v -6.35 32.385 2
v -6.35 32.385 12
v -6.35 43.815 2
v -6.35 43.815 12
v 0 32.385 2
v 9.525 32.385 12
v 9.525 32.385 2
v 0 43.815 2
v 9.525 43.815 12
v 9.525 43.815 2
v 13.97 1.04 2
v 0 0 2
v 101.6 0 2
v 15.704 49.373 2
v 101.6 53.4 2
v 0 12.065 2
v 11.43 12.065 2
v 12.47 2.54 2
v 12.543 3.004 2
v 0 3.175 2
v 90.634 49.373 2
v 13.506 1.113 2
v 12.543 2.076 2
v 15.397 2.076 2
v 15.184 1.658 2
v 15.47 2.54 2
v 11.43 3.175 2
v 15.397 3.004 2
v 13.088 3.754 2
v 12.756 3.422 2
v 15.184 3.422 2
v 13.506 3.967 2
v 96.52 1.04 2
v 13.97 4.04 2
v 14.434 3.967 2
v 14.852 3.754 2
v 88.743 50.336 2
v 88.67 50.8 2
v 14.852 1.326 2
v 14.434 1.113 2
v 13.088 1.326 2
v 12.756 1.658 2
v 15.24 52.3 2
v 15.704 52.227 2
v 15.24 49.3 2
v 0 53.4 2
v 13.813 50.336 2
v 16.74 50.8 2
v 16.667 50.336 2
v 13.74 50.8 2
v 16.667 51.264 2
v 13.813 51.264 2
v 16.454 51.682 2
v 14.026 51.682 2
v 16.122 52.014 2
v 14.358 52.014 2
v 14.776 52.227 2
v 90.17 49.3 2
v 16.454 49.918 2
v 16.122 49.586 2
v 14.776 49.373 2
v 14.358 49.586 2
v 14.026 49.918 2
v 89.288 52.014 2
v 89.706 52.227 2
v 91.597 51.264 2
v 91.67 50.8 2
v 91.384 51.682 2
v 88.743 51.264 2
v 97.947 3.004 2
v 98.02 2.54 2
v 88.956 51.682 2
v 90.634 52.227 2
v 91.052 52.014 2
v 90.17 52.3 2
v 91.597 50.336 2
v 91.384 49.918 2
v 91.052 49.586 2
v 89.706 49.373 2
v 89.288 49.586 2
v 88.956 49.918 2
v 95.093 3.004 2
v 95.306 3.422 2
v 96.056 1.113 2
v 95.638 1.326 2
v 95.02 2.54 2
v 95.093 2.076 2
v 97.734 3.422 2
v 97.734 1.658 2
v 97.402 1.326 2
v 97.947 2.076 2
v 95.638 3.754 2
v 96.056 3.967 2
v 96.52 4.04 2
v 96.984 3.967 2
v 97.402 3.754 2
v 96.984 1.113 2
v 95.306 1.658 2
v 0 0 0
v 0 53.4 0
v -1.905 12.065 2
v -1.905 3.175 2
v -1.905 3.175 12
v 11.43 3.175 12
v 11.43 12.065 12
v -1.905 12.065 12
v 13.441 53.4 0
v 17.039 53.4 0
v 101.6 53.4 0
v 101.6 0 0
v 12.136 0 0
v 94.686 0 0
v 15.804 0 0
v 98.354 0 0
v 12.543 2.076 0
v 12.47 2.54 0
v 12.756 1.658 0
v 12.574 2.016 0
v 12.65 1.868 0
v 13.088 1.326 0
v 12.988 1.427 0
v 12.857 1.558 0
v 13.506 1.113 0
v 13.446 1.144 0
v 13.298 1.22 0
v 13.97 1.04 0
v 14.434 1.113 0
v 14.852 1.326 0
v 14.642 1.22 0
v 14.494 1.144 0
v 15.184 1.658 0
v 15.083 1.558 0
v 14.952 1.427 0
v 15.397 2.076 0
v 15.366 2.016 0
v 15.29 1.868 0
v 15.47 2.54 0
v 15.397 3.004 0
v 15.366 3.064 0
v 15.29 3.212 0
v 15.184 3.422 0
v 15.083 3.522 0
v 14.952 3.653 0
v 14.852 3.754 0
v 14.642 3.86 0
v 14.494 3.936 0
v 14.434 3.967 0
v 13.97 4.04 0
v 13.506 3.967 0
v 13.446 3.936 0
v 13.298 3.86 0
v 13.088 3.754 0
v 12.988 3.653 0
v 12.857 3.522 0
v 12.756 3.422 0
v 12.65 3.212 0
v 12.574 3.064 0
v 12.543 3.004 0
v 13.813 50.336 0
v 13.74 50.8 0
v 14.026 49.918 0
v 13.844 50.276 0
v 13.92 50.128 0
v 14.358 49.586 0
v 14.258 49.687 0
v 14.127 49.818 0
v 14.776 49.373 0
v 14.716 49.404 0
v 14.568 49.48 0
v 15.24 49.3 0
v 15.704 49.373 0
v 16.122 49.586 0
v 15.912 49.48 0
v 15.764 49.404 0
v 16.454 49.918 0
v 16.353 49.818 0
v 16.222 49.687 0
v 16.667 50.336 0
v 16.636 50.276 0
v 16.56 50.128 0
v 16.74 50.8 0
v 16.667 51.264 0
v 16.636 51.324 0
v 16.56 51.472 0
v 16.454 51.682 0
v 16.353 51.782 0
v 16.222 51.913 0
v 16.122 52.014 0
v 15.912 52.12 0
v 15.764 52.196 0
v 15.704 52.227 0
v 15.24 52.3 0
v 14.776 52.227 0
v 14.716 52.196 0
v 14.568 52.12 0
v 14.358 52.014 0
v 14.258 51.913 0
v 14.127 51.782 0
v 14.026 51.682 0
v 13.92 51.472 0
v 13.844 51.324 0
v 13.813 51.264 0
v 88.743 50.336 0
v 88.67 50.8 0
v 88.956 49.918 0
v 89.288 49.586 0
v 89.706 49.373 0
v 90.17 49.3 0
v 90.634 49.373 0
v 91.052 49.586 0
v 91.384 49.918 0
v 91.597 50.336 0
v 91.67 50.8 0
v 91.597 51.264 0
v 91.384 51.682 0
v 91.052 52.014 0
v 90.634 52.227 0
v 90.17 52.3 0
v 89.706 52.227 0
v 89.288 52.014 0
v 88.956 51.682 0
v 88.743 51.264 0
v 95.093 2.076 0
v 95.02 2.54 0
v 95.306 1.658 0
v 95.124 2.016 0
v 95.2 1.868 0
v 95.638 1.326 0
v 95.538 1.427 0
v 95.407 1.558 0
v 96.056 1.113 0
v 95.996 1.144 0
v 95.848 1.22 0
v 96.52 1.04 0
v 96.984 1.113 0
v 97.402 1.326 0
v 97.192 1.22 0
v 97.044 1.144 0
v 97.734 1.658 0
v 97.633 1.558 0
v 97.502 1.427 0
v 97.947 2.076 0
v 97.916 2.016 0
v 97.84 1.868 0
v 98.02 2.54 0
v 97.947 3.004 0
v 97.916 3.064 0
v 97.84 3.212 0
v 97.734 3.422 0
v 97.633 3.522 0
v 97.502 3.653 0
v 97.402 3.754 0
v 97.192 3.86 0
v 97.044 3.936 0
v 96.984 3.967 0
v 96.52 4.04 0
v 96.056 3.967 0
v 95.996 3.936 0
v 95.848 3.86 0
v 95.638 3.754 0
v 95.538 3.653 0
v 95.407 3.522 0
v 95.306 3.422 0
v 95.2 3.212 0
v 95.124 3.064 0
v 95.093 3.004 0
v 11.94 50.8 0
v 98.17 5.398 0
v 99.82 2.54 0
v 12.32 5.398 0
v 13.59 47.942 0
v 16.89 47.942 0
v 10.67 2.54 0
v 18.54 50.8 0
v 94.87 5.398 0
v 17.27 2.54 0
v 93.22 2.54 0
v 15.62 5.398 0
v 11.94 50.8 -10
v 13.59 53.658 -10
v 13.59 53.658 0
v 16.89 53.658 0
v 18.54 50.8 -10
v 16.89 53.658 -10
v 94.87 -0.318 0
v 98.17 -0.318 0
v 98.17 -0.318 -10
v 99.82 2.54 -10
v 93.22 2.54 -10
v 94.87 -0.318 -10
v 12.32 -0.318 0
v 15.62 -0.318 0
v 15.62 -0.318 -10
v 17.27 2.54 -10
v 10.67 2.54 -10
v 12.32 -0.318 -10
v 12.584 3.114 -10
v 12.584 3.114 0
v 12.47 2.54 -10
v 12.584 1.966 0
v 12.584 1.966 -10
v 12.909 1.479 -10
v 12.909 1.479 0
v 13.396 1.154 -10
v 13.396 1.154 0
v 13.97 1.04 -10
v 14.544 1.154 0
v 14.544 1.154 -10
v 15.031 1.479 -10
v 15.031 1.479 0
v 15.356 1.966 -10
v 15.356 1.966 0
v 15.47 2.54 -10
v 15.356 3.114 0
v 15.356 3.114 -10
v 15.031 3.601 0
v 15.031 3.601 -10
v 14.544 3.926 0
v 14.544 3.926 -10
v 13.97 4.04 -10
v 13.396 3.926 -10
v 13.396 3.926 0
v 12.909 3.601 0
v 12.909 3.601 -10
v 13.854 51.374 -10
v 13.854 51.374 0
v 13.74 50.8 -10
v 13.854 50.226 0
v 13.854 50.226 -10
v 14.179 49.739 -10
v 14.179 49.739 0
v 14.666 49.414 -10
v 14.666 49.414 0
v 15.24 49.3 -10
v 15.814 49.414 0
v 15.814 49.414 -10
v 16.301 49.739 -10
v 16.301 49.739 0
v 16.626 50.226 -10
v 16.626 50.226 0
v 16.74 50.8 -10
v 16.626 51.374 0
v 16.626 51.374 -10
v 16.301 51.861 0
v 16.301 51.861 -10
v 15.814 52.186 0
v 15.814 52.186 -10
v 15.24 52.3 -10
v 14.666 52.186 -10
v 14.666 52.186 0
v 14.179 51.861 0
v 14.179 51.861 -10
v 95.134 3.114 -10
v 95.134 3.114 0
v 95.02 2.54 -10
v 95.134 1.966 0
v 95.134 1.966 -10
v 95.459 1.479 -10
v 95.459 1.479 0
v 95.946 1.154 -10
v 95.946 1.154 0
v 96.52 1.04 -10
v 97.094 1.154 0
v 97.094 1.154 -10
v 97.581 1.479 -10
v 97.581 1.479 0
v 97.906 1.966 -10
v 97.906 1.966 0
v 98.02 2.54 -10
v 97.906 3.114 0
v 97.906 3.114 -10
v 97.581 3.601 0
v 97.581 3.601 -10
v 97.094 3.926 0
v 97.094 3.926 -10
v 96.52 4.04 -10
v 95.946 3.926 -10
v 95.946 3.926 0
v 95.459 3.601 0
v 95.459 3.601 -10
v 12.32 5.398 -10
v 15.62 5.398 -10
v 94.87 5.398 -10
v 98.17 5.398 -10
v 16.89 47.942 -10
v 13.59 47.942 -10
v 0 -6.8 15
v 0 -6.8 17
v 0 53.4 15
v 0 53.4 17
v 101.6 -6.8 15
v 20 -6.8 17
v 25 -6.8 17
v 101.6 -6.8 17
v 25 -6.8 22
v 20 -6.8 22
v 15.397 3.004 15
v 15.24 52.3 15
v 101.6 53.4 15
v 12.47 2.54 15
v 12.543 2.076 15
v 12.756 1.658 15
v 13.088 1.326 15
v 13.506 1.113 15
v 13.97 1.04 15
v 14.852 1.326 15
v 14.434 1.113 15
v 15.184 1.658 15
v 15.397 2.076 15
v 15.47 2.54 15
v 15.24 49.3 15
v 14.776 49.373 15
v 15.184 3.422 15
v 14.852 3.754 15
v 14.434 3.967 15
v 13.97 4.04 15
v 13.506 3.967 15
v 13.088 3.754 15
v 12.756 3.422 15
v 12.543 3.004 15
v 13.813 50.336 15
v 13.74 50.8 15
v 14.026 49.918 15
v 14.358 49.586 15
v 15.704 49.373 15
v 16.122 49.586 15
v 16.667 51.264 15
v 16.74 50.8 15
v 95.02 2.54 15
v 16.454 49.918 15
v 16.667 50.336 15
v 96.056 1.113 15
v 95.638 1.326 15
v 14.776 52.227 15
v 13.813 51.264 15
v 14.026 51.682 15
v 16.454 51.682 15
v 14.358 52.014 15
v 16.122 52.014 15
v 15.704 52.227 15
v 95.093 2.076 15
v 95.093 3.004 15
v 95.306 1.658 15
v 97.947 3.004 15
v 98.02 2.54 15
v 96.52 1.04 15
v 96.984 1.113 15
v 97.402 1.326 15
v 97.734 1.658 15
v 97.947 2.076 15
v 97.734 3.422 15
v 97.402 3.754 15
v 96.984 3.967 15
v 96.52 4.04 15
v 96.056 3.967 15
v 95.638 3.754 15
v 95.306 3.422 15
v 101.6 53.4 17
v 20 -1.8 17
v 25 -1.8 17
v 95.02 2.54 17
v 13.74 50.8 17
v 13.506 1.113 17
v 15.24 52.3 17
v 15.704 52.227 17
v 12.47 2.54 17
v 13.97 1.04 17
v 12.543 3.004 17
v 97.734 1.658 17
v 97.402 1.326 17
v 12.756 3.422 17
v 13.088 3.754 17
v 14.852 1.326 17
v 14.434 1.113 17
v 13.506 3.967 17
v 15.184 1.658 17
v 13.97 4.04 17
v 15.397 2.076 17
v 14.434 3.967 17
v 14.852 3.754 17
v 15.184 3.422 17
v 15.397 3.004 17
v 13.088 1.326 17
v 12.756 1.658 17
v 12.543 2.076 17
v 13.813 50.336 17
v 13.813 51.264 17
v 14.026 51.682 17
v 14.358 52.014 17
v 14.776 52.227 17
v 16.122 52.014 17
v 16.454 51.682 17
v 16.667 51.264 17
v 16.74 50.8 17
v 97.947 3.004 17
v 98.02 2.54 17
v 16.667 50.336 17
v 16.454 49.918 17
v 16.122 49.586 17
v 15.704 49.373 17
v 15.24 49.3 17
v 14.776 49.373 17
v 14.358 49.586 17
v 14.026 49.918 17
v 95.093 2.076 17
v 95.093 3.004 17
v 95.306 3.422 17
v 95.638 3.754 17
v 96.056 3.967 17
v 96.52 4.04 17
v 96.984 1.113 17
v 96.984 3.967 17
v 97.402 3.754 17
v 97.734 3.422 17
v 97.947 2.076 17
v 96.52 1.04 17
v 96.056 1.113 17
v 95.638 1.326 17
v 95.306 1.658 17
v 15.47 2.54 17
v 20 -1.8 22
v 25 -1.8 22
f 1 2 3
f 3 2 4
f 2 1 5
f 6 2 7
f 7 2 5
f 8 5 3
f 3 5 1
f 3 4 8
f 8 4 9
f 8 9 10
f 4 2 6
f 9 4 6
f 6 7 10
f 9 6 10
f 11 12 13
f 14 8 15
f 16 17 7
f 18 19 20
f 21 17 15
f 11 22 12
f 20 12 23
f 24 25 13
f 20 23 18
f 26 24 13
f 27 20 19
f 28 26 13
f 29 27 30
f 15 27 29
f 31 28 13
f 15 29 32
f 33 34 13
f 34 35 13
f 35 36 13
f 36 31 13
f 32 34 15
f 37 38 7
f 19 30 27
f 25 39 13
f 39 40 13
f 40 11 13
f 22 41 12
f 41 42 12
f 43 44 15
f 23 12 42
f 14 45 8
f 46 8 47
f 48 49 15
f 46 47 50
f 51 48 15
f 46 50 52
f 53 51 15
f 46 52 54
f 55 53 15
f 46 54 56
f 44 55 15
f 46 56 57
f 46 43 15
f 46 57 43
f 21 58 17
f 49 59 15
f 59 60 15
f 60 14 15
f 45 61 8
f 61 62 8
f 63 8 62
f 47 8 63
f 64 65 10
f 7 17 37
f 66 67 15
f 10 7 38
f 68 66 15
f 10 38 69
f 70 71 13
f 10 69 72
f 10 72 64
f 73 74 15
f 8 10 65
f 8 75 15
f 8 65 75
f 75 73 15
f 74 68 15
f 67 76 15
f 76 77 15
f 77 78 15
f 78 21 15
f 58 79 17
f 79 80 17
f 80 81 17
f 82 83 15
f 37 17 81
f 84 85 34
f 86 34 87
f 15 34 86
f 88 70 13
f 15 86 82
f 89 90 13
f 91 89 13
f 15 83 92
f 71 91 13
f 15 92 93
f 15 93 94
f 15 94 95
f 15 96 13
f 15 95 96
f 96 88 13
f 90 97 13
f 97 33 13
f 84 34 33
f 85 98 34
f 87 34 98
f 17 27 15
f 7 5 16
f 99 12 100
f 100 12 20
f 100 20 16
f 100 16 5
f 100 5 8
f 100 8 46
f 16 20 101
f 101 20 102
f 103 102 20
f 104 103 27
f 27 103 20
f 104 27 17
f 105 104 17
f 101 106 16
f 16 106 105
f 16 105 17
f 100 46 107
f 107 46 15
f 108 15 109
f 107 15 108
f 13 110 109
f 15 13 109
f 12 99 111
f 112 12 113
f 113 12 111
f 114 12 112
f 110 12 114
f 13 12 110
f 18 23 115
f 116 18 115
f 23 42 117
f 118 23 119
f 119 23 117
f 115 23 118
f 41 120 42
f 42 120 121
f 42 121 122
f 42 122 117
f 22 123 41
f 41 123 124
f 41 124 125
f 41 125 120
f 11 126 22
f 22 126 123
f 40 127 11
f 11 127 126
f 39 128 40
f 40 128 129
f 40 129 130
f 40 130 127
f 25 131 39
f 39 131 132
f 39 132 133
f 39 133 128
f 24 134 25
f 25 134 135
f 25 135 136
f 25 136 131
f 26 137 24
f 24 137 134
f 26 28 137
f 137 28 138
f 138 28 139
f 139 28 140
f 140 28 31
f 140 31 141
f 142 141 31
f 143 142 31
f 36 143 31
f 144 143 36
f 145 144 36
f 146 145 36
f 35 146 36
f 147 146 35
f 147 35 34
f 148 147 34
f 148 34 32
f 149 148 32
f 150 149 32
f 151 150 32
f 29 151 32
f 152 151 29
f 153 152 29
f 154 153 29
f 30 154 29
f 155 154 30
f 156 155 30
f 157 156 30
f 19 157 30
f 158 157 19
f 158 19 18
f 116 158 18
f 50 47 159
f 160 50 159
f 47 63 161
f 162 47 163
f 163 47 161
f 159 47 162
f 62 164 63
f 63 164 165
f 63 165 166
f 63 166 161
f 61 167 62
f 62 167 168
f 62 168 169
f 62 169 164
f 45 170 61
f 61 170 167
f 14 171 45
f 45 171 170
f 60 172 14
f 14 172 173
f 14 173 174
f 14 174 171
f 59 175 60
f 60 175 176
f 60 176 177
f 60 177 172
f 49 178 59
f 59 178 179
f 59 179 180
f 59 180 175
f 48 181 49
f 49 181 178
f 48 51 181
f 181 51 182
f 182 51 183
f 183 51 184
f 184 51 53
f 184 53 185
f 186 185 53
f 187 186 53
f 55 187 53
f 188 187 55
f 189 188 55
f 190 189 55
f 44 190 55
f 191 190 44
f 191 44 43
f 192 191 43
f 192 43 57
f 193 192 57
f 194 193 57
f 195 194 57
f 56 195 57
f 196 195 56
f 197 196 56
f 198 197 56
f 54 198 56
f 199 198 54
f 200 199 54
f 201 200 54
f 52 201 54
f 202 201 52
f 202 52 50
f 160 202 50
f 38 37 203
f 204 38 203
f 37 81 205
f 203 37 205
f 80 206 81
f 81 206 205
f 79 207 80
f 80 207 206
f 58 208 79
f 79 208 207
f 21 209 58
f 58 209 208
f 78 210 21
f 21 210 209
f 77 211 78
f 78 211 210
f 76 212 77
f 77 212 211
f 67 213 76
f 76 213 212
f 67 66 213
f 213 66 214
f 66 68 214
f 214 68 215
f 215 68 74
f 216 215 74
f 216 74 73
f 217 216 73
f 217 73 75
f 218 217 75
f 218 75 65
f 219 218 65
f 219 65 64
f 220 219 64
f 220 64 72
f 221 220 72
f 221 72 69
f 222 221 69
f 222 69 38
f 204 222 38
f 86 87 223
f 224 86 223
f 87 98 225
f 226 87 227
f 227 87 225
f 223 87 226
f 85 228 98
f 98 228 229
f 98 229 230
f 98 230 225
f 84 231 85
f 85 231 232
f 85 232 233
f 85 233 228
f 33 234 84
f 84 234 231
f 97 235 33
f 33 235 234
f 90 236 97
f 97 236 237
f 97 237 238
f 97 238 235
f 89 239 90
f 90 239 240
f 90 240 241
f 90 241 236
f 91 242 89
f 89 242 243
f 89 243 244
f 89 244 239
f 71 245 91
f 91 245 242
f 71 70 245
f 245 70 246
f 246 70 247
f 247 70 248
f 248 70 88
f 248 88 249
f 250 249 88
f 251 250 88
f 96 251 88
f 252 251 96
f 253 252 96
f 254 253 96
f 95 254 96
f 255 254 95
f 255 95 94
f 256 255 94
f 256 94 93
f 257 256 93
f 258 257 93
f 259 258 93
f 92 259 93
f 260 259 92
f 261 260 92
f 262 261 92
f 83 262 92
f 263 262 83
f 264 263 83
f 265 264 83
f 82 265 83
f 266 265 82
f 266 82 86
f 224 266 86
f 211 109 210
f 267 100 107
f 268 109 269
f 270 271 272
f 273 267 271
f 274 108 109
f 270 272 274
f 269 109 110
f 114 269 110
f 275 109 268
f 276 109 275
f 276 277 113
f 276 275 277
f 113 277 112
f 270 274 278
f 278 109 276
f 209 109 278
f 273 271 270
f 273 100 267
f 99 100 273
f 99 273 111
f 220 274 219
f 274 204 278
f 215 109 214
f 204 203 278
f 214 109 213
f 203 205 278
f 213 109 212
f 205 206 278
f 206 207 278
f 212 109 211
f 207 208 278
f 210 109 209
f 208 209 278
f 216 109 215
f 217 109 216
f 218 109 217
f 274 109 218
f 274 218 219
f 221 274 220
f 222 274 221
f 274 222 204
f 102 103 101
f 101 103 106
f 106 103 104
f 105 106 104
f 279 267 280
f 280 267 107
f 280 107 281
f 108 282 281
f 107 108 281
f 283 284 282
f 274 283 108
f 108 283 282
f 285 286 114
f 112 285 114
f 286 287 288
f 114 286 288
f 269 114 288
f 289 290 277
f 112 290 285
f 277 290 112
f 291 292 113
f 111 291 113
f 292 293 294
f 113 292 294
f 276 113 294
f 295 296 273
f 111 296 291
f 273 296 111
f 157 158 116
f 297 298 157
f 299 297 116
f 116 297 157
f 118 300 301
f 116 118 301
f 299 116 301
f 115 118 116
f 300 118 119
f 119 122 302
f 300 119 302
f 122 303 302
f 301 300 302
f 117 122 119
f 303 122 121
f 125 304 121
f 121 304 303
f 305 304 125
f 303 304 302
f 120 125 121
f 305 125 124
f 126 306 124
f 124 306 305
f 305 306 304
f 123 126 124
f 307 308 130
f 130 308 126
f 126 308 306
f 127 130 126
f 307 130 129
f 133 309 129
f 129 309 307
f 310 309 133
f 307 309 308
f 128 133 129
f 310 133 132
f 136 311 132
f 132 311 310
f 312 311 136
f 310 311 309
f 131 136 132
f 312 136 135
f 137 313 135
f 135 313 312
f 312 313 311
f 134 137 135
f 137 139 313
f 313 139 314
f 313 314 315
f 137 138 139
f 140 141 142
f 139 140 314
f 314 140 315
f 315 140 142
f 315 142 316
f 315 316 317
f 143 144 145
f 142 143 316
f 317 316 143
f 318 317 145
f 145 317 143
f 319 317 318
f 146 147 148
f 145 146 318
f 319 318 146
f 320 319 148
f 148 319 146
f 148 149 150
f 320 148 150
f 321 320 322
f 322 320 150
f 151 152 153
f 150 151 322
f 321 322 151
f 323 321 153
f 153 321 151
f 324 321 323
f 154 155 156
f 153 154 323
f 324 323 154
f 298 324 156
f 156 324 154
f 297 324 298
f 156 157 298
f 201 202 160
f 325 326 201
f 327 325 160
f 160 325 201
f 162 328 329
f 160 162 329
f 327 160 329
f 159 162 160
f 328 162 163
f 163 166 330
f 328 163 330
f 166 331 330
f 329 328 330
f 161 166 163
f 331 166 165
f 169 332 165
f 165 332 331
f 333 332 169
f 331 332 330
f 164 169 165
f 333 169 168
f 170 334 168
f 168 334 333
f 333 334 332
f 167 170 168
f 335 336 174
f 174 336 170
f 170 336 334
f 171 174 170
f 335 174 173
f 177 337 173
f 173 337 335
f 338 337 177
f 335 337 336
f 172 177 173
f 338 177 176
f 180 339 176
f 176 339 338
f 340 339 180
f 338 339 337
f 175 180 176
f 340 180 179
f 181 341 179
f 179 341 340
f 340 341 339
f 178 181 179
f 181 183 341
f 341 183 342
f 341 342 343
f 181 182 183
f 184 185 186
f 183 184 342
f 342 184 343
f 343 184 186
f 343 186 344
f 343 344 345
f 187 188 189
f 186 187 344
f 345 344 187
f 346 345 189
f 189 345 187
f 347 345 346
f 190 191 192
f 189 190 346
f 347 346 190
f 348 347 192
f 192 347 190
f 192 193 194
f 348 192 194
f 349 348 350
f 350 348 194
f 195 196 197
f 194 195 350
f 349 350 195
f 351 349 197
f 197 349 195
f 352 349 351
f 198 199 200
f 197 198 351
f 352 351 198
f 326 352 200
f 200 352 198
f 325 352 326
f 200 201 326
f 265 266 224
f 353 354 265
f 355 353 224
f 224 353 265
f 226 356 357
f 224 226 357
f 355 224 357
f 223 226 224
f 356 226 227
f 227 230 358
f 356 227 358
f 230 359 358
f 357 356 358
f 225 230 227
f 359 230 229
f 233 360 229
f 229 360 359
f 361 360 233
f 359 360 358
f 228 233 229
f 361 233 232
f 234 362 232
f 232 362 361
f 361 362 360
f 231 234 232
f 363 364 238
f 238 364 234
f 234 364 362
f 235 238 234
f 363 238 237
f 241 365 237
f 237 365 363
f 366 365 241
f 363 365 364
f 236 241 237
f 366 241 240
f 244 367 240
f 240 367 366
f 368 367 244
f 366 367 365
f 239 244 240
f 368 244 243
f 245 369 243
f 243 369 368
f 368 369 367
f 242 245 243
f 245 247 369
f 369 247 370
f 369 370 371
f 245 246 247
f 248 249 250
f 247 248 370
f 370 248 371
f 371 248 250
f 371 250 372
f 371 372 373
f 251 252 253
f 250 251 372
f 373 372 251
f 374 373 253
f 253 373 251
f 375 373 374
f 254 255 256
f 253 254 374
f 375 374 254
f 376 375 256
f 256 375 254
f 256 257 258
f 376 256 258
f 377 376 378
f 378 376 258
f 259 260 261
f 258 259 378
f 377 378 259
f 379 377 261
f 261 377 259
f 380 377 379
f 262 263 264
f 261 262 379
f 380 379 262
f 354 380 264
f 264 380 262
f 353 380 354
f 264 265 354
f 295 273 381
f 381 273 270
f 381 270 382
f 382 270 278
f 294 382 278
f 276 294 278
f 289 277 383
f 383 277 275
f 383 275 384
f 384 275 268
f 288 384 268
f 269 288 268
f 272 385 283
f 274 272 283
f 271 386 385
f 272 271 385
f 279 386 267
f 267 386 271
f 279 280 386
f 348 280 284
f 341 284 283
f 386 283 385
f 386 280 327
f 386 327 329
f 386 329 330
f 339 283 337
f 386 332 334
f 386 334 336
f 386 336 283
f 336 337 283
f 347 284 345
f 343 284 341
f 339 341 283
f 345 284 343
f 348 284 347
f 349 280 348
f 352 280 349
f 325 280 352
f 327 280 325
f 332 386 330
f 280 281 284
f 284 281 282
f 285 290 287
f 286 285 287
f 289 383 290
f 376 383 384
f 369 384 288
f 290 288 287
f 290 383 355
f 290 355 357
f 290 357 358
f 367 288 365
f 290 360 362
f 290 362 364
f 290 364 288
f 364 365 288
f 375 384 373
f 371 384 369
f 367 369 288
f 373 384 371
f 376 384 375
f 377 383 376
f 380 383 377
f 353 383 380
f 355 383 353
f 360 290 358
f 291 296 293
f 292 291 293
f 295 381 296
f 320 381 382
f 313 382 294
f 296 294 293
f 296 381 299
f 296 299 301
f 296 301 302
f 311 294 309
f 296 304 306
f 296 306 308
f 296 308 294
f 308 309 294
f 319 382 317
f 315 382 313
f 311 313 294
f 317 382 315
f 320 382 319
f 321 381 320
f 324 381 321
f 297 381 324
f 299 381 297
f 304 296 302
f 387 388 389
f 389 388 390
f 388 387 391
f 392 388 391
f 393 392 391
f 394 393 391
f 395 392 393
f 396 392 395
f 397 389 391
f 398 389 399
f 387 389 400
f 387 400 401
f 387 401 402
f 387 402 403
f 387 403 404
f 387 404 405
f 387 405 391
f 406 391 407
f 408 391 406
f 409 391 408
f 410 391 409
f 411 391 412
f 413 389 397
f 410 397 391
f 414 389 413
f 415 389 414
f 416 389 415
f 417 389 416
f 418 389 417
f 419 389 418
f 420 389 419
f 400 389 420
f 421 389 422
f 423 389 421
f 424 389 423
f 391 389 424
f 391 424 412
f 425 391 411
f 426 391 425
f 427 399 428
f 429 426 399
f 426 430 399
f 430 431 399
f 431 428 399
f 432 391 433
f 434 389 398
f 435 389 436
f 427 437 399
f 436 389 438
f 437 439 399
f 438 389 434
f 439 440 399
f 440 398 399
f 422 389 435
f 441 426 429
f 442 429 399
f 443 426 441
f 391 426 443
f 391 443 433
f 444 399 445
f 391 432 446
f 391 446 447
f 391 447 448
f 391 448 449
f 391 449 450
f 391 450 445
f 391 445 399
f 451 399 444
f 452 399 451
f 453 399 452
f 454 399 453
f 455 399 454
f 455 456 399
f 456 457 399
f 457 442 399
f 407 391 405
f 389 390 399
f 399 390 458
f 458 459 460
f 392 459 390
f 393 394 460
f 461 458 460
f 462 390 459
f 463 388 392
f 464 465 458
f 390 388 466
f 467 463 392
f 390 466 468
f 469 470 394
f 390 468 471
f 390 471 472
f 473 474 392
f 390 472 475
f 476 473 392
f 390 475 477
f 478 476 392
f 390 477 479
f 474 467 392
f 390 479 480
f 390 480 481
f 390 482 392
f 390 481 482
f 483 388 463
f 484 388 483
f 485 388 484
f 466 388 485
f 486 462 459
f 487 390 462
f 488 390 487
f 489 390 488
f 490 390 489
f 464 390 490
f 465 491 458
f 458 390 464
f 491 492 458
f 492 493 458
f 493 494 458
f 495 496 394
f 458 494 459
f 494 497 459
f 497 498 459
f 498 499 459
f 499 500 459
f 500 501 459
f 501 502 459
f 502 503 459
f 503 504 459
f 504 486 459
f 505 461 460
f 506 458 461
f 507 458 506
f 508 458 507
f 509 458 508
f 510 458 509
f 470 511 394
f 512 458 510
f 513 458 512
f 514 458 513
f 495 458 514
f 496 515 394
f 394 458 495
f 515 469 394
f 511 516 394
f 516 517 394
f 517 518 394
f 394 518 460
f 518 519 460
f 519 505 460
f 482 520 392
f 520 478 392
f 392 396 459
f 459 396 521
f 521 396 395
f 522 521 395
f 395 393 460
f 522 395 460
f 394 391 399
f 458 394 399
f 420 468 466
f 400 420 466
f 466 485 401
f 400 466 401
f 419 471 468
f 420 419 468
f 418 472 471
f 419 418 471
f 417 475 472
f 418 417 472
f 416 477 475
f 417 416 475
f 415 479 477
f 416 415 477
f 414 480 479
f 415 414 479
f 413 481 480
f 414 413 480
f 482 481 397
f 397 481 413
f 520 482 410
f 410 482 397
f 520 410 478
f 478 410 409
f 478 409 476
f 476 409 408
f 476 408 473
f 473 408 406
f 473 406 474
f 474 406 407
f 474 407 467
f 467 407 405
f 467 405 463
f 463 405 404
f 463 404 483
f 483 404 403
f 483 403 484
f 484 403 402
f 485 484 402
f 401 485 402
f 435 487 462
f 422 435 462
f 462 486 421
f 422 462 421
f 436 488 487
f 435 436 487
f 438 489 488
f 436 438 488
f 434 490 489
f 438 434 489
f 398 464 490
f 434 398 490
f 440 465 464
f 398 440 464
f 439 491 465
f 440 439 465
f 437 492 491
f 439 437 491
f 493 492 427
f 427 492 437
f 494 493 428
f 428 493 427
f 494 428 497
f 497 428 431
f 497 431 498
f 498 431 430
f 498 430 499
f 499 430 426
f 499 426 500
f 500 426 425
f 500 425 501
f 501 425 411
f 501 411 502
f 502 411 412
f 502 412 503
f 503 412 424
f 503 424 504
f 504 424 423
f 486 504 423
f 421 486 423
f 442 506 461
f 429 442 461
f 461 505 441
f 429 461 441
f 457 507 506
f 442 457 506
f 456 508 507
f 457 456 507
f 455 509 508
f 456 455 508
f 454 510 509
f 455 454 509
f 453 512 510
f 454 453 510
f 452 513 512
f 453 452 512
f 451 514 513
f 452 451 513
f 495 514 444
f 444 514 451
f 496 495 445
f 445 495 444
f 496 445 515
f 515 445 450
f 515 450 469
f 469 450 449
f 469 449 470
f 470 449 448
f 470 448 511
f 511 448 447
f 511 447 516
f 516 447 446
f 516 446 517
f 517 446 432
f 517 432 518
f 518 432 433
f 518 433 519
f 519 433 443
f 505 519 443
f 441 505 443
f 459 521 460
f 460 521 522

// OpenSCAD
// Модель платы Arduino Mega 2560 R3
// Автор: "Кубъект Лаб", Парфенов Евгений
//	15.10.2014

// modified by Andrew Answer <mail@answe.ru> 2015/01/30

// http://blog.arduino.cc/2011/01/05/nice-drawings-of-the-arduino-uno-and-mega-2560/
// or sibrap/specs/arduino_mega_drawing.svg
// sizes in mils (0.001")
k=25.4/1000;

ArdX=101.6;	   // длина платы
ArdY=53.4; 		// ширина платы
ArdH=2;			// толщина платы
a=0;				// смещение отверстий от краев платы по X
b=0;				// смещение отверстий от краев платы по Y
usbX=(250+375)*k;//16;
usbY=(1725-1275)*k;//13;
usbH=10;
RampX=101.6;	
RampY=60.2;		
RampZ=15;		// Уточнить. Подъем RAMPS над Arduino

ArdPowX = (75+450)*k;
ArdPowY = (475-125)*k;

Arduino1 = [550,100,0]*k;
Arduino2 = [3800,100,0]*k;
Arduino3 = [600,2000,0]*k;
Arduino4 = [3550,2000,0]*k;
echo (Arduino1,Arduino2,Arduino3,Arduino4);

module specnut() {
difference() {
cylinder(10,r=6.6/2,$fn=6);
translate([0,0,-0.1])cylinder(10.2,r=3/2,$fn=16);
}
}

module Arduino (ArdX, ArdY, ArdH, a, b) {
difference () {
	cube ([ArdX,ArdY,ArdH]);
	translate (Arduino1+[a,b,-1]) cylinder (8,r=3/2,$fn=20);
	translate (Arduino2+[a,b,-1]) cylinder (8,r=3/2,$fn=20);
	translate (Arduino3+[a,b,-1]) cylinder (8,r=3/2,$fn=20);
	translate (Arduino4+[a,b,-1]) cylinder (8,r=3/2,$fn=20);

/*	translate ([13.97+a,2.54+b,-1]) cylinder (8,r=3/2,$fn=20);
	translate ([15.24+a,50.8+b,-1]) cylinder (8,r=3/2,$fn=20);
	translate ([96.52+a,2.54+b,-1]) cylinder (8,r=3/2,$fn=20);
	translate ([90.17+a,50.8+b,-1]) cylinder (8,r=3/2,$fn=20);
*/
}}

union(){
	// Arduino - стандартный размер и расположение отверстий
	translate ([0,0,0]) Arduino (ArdX,ArdY,ArdH,a,b);
	// USB
	translate ([-250*k,1275*k,ArdH]) cube([usbX,usbY,usbH]);
	// Arduino power
	translate ([-75*k,125*k,ArdH]) cube([ArdPowX,ArdPowY,usbH]);
	// Reset button (here?)
	translate ([20,ArdY-RampY,ArdH+RampZ]) cube([5,5,5]);
}

union(){
	// RAMPS - измененный размер и другое расположение отверстий
	translate ([0,ArdY-RampY,RampZ]) rotate ([0,0,0]) Arduino (RampX,RampY,ArdH,0,RampY-ArdY);
// Закрытие отсутствующего отверстия
	translate ([90.17+a,50.8+b,RampZ]) cylinder (ArdH,r=3/2,$fn=20);

	translate (Arduino1+[a,b,-10])specnut();
	translate (Arduino2+[a,b,-10])specnut();
	translate (Arduino3+[a,b,-10])specnut();
}
